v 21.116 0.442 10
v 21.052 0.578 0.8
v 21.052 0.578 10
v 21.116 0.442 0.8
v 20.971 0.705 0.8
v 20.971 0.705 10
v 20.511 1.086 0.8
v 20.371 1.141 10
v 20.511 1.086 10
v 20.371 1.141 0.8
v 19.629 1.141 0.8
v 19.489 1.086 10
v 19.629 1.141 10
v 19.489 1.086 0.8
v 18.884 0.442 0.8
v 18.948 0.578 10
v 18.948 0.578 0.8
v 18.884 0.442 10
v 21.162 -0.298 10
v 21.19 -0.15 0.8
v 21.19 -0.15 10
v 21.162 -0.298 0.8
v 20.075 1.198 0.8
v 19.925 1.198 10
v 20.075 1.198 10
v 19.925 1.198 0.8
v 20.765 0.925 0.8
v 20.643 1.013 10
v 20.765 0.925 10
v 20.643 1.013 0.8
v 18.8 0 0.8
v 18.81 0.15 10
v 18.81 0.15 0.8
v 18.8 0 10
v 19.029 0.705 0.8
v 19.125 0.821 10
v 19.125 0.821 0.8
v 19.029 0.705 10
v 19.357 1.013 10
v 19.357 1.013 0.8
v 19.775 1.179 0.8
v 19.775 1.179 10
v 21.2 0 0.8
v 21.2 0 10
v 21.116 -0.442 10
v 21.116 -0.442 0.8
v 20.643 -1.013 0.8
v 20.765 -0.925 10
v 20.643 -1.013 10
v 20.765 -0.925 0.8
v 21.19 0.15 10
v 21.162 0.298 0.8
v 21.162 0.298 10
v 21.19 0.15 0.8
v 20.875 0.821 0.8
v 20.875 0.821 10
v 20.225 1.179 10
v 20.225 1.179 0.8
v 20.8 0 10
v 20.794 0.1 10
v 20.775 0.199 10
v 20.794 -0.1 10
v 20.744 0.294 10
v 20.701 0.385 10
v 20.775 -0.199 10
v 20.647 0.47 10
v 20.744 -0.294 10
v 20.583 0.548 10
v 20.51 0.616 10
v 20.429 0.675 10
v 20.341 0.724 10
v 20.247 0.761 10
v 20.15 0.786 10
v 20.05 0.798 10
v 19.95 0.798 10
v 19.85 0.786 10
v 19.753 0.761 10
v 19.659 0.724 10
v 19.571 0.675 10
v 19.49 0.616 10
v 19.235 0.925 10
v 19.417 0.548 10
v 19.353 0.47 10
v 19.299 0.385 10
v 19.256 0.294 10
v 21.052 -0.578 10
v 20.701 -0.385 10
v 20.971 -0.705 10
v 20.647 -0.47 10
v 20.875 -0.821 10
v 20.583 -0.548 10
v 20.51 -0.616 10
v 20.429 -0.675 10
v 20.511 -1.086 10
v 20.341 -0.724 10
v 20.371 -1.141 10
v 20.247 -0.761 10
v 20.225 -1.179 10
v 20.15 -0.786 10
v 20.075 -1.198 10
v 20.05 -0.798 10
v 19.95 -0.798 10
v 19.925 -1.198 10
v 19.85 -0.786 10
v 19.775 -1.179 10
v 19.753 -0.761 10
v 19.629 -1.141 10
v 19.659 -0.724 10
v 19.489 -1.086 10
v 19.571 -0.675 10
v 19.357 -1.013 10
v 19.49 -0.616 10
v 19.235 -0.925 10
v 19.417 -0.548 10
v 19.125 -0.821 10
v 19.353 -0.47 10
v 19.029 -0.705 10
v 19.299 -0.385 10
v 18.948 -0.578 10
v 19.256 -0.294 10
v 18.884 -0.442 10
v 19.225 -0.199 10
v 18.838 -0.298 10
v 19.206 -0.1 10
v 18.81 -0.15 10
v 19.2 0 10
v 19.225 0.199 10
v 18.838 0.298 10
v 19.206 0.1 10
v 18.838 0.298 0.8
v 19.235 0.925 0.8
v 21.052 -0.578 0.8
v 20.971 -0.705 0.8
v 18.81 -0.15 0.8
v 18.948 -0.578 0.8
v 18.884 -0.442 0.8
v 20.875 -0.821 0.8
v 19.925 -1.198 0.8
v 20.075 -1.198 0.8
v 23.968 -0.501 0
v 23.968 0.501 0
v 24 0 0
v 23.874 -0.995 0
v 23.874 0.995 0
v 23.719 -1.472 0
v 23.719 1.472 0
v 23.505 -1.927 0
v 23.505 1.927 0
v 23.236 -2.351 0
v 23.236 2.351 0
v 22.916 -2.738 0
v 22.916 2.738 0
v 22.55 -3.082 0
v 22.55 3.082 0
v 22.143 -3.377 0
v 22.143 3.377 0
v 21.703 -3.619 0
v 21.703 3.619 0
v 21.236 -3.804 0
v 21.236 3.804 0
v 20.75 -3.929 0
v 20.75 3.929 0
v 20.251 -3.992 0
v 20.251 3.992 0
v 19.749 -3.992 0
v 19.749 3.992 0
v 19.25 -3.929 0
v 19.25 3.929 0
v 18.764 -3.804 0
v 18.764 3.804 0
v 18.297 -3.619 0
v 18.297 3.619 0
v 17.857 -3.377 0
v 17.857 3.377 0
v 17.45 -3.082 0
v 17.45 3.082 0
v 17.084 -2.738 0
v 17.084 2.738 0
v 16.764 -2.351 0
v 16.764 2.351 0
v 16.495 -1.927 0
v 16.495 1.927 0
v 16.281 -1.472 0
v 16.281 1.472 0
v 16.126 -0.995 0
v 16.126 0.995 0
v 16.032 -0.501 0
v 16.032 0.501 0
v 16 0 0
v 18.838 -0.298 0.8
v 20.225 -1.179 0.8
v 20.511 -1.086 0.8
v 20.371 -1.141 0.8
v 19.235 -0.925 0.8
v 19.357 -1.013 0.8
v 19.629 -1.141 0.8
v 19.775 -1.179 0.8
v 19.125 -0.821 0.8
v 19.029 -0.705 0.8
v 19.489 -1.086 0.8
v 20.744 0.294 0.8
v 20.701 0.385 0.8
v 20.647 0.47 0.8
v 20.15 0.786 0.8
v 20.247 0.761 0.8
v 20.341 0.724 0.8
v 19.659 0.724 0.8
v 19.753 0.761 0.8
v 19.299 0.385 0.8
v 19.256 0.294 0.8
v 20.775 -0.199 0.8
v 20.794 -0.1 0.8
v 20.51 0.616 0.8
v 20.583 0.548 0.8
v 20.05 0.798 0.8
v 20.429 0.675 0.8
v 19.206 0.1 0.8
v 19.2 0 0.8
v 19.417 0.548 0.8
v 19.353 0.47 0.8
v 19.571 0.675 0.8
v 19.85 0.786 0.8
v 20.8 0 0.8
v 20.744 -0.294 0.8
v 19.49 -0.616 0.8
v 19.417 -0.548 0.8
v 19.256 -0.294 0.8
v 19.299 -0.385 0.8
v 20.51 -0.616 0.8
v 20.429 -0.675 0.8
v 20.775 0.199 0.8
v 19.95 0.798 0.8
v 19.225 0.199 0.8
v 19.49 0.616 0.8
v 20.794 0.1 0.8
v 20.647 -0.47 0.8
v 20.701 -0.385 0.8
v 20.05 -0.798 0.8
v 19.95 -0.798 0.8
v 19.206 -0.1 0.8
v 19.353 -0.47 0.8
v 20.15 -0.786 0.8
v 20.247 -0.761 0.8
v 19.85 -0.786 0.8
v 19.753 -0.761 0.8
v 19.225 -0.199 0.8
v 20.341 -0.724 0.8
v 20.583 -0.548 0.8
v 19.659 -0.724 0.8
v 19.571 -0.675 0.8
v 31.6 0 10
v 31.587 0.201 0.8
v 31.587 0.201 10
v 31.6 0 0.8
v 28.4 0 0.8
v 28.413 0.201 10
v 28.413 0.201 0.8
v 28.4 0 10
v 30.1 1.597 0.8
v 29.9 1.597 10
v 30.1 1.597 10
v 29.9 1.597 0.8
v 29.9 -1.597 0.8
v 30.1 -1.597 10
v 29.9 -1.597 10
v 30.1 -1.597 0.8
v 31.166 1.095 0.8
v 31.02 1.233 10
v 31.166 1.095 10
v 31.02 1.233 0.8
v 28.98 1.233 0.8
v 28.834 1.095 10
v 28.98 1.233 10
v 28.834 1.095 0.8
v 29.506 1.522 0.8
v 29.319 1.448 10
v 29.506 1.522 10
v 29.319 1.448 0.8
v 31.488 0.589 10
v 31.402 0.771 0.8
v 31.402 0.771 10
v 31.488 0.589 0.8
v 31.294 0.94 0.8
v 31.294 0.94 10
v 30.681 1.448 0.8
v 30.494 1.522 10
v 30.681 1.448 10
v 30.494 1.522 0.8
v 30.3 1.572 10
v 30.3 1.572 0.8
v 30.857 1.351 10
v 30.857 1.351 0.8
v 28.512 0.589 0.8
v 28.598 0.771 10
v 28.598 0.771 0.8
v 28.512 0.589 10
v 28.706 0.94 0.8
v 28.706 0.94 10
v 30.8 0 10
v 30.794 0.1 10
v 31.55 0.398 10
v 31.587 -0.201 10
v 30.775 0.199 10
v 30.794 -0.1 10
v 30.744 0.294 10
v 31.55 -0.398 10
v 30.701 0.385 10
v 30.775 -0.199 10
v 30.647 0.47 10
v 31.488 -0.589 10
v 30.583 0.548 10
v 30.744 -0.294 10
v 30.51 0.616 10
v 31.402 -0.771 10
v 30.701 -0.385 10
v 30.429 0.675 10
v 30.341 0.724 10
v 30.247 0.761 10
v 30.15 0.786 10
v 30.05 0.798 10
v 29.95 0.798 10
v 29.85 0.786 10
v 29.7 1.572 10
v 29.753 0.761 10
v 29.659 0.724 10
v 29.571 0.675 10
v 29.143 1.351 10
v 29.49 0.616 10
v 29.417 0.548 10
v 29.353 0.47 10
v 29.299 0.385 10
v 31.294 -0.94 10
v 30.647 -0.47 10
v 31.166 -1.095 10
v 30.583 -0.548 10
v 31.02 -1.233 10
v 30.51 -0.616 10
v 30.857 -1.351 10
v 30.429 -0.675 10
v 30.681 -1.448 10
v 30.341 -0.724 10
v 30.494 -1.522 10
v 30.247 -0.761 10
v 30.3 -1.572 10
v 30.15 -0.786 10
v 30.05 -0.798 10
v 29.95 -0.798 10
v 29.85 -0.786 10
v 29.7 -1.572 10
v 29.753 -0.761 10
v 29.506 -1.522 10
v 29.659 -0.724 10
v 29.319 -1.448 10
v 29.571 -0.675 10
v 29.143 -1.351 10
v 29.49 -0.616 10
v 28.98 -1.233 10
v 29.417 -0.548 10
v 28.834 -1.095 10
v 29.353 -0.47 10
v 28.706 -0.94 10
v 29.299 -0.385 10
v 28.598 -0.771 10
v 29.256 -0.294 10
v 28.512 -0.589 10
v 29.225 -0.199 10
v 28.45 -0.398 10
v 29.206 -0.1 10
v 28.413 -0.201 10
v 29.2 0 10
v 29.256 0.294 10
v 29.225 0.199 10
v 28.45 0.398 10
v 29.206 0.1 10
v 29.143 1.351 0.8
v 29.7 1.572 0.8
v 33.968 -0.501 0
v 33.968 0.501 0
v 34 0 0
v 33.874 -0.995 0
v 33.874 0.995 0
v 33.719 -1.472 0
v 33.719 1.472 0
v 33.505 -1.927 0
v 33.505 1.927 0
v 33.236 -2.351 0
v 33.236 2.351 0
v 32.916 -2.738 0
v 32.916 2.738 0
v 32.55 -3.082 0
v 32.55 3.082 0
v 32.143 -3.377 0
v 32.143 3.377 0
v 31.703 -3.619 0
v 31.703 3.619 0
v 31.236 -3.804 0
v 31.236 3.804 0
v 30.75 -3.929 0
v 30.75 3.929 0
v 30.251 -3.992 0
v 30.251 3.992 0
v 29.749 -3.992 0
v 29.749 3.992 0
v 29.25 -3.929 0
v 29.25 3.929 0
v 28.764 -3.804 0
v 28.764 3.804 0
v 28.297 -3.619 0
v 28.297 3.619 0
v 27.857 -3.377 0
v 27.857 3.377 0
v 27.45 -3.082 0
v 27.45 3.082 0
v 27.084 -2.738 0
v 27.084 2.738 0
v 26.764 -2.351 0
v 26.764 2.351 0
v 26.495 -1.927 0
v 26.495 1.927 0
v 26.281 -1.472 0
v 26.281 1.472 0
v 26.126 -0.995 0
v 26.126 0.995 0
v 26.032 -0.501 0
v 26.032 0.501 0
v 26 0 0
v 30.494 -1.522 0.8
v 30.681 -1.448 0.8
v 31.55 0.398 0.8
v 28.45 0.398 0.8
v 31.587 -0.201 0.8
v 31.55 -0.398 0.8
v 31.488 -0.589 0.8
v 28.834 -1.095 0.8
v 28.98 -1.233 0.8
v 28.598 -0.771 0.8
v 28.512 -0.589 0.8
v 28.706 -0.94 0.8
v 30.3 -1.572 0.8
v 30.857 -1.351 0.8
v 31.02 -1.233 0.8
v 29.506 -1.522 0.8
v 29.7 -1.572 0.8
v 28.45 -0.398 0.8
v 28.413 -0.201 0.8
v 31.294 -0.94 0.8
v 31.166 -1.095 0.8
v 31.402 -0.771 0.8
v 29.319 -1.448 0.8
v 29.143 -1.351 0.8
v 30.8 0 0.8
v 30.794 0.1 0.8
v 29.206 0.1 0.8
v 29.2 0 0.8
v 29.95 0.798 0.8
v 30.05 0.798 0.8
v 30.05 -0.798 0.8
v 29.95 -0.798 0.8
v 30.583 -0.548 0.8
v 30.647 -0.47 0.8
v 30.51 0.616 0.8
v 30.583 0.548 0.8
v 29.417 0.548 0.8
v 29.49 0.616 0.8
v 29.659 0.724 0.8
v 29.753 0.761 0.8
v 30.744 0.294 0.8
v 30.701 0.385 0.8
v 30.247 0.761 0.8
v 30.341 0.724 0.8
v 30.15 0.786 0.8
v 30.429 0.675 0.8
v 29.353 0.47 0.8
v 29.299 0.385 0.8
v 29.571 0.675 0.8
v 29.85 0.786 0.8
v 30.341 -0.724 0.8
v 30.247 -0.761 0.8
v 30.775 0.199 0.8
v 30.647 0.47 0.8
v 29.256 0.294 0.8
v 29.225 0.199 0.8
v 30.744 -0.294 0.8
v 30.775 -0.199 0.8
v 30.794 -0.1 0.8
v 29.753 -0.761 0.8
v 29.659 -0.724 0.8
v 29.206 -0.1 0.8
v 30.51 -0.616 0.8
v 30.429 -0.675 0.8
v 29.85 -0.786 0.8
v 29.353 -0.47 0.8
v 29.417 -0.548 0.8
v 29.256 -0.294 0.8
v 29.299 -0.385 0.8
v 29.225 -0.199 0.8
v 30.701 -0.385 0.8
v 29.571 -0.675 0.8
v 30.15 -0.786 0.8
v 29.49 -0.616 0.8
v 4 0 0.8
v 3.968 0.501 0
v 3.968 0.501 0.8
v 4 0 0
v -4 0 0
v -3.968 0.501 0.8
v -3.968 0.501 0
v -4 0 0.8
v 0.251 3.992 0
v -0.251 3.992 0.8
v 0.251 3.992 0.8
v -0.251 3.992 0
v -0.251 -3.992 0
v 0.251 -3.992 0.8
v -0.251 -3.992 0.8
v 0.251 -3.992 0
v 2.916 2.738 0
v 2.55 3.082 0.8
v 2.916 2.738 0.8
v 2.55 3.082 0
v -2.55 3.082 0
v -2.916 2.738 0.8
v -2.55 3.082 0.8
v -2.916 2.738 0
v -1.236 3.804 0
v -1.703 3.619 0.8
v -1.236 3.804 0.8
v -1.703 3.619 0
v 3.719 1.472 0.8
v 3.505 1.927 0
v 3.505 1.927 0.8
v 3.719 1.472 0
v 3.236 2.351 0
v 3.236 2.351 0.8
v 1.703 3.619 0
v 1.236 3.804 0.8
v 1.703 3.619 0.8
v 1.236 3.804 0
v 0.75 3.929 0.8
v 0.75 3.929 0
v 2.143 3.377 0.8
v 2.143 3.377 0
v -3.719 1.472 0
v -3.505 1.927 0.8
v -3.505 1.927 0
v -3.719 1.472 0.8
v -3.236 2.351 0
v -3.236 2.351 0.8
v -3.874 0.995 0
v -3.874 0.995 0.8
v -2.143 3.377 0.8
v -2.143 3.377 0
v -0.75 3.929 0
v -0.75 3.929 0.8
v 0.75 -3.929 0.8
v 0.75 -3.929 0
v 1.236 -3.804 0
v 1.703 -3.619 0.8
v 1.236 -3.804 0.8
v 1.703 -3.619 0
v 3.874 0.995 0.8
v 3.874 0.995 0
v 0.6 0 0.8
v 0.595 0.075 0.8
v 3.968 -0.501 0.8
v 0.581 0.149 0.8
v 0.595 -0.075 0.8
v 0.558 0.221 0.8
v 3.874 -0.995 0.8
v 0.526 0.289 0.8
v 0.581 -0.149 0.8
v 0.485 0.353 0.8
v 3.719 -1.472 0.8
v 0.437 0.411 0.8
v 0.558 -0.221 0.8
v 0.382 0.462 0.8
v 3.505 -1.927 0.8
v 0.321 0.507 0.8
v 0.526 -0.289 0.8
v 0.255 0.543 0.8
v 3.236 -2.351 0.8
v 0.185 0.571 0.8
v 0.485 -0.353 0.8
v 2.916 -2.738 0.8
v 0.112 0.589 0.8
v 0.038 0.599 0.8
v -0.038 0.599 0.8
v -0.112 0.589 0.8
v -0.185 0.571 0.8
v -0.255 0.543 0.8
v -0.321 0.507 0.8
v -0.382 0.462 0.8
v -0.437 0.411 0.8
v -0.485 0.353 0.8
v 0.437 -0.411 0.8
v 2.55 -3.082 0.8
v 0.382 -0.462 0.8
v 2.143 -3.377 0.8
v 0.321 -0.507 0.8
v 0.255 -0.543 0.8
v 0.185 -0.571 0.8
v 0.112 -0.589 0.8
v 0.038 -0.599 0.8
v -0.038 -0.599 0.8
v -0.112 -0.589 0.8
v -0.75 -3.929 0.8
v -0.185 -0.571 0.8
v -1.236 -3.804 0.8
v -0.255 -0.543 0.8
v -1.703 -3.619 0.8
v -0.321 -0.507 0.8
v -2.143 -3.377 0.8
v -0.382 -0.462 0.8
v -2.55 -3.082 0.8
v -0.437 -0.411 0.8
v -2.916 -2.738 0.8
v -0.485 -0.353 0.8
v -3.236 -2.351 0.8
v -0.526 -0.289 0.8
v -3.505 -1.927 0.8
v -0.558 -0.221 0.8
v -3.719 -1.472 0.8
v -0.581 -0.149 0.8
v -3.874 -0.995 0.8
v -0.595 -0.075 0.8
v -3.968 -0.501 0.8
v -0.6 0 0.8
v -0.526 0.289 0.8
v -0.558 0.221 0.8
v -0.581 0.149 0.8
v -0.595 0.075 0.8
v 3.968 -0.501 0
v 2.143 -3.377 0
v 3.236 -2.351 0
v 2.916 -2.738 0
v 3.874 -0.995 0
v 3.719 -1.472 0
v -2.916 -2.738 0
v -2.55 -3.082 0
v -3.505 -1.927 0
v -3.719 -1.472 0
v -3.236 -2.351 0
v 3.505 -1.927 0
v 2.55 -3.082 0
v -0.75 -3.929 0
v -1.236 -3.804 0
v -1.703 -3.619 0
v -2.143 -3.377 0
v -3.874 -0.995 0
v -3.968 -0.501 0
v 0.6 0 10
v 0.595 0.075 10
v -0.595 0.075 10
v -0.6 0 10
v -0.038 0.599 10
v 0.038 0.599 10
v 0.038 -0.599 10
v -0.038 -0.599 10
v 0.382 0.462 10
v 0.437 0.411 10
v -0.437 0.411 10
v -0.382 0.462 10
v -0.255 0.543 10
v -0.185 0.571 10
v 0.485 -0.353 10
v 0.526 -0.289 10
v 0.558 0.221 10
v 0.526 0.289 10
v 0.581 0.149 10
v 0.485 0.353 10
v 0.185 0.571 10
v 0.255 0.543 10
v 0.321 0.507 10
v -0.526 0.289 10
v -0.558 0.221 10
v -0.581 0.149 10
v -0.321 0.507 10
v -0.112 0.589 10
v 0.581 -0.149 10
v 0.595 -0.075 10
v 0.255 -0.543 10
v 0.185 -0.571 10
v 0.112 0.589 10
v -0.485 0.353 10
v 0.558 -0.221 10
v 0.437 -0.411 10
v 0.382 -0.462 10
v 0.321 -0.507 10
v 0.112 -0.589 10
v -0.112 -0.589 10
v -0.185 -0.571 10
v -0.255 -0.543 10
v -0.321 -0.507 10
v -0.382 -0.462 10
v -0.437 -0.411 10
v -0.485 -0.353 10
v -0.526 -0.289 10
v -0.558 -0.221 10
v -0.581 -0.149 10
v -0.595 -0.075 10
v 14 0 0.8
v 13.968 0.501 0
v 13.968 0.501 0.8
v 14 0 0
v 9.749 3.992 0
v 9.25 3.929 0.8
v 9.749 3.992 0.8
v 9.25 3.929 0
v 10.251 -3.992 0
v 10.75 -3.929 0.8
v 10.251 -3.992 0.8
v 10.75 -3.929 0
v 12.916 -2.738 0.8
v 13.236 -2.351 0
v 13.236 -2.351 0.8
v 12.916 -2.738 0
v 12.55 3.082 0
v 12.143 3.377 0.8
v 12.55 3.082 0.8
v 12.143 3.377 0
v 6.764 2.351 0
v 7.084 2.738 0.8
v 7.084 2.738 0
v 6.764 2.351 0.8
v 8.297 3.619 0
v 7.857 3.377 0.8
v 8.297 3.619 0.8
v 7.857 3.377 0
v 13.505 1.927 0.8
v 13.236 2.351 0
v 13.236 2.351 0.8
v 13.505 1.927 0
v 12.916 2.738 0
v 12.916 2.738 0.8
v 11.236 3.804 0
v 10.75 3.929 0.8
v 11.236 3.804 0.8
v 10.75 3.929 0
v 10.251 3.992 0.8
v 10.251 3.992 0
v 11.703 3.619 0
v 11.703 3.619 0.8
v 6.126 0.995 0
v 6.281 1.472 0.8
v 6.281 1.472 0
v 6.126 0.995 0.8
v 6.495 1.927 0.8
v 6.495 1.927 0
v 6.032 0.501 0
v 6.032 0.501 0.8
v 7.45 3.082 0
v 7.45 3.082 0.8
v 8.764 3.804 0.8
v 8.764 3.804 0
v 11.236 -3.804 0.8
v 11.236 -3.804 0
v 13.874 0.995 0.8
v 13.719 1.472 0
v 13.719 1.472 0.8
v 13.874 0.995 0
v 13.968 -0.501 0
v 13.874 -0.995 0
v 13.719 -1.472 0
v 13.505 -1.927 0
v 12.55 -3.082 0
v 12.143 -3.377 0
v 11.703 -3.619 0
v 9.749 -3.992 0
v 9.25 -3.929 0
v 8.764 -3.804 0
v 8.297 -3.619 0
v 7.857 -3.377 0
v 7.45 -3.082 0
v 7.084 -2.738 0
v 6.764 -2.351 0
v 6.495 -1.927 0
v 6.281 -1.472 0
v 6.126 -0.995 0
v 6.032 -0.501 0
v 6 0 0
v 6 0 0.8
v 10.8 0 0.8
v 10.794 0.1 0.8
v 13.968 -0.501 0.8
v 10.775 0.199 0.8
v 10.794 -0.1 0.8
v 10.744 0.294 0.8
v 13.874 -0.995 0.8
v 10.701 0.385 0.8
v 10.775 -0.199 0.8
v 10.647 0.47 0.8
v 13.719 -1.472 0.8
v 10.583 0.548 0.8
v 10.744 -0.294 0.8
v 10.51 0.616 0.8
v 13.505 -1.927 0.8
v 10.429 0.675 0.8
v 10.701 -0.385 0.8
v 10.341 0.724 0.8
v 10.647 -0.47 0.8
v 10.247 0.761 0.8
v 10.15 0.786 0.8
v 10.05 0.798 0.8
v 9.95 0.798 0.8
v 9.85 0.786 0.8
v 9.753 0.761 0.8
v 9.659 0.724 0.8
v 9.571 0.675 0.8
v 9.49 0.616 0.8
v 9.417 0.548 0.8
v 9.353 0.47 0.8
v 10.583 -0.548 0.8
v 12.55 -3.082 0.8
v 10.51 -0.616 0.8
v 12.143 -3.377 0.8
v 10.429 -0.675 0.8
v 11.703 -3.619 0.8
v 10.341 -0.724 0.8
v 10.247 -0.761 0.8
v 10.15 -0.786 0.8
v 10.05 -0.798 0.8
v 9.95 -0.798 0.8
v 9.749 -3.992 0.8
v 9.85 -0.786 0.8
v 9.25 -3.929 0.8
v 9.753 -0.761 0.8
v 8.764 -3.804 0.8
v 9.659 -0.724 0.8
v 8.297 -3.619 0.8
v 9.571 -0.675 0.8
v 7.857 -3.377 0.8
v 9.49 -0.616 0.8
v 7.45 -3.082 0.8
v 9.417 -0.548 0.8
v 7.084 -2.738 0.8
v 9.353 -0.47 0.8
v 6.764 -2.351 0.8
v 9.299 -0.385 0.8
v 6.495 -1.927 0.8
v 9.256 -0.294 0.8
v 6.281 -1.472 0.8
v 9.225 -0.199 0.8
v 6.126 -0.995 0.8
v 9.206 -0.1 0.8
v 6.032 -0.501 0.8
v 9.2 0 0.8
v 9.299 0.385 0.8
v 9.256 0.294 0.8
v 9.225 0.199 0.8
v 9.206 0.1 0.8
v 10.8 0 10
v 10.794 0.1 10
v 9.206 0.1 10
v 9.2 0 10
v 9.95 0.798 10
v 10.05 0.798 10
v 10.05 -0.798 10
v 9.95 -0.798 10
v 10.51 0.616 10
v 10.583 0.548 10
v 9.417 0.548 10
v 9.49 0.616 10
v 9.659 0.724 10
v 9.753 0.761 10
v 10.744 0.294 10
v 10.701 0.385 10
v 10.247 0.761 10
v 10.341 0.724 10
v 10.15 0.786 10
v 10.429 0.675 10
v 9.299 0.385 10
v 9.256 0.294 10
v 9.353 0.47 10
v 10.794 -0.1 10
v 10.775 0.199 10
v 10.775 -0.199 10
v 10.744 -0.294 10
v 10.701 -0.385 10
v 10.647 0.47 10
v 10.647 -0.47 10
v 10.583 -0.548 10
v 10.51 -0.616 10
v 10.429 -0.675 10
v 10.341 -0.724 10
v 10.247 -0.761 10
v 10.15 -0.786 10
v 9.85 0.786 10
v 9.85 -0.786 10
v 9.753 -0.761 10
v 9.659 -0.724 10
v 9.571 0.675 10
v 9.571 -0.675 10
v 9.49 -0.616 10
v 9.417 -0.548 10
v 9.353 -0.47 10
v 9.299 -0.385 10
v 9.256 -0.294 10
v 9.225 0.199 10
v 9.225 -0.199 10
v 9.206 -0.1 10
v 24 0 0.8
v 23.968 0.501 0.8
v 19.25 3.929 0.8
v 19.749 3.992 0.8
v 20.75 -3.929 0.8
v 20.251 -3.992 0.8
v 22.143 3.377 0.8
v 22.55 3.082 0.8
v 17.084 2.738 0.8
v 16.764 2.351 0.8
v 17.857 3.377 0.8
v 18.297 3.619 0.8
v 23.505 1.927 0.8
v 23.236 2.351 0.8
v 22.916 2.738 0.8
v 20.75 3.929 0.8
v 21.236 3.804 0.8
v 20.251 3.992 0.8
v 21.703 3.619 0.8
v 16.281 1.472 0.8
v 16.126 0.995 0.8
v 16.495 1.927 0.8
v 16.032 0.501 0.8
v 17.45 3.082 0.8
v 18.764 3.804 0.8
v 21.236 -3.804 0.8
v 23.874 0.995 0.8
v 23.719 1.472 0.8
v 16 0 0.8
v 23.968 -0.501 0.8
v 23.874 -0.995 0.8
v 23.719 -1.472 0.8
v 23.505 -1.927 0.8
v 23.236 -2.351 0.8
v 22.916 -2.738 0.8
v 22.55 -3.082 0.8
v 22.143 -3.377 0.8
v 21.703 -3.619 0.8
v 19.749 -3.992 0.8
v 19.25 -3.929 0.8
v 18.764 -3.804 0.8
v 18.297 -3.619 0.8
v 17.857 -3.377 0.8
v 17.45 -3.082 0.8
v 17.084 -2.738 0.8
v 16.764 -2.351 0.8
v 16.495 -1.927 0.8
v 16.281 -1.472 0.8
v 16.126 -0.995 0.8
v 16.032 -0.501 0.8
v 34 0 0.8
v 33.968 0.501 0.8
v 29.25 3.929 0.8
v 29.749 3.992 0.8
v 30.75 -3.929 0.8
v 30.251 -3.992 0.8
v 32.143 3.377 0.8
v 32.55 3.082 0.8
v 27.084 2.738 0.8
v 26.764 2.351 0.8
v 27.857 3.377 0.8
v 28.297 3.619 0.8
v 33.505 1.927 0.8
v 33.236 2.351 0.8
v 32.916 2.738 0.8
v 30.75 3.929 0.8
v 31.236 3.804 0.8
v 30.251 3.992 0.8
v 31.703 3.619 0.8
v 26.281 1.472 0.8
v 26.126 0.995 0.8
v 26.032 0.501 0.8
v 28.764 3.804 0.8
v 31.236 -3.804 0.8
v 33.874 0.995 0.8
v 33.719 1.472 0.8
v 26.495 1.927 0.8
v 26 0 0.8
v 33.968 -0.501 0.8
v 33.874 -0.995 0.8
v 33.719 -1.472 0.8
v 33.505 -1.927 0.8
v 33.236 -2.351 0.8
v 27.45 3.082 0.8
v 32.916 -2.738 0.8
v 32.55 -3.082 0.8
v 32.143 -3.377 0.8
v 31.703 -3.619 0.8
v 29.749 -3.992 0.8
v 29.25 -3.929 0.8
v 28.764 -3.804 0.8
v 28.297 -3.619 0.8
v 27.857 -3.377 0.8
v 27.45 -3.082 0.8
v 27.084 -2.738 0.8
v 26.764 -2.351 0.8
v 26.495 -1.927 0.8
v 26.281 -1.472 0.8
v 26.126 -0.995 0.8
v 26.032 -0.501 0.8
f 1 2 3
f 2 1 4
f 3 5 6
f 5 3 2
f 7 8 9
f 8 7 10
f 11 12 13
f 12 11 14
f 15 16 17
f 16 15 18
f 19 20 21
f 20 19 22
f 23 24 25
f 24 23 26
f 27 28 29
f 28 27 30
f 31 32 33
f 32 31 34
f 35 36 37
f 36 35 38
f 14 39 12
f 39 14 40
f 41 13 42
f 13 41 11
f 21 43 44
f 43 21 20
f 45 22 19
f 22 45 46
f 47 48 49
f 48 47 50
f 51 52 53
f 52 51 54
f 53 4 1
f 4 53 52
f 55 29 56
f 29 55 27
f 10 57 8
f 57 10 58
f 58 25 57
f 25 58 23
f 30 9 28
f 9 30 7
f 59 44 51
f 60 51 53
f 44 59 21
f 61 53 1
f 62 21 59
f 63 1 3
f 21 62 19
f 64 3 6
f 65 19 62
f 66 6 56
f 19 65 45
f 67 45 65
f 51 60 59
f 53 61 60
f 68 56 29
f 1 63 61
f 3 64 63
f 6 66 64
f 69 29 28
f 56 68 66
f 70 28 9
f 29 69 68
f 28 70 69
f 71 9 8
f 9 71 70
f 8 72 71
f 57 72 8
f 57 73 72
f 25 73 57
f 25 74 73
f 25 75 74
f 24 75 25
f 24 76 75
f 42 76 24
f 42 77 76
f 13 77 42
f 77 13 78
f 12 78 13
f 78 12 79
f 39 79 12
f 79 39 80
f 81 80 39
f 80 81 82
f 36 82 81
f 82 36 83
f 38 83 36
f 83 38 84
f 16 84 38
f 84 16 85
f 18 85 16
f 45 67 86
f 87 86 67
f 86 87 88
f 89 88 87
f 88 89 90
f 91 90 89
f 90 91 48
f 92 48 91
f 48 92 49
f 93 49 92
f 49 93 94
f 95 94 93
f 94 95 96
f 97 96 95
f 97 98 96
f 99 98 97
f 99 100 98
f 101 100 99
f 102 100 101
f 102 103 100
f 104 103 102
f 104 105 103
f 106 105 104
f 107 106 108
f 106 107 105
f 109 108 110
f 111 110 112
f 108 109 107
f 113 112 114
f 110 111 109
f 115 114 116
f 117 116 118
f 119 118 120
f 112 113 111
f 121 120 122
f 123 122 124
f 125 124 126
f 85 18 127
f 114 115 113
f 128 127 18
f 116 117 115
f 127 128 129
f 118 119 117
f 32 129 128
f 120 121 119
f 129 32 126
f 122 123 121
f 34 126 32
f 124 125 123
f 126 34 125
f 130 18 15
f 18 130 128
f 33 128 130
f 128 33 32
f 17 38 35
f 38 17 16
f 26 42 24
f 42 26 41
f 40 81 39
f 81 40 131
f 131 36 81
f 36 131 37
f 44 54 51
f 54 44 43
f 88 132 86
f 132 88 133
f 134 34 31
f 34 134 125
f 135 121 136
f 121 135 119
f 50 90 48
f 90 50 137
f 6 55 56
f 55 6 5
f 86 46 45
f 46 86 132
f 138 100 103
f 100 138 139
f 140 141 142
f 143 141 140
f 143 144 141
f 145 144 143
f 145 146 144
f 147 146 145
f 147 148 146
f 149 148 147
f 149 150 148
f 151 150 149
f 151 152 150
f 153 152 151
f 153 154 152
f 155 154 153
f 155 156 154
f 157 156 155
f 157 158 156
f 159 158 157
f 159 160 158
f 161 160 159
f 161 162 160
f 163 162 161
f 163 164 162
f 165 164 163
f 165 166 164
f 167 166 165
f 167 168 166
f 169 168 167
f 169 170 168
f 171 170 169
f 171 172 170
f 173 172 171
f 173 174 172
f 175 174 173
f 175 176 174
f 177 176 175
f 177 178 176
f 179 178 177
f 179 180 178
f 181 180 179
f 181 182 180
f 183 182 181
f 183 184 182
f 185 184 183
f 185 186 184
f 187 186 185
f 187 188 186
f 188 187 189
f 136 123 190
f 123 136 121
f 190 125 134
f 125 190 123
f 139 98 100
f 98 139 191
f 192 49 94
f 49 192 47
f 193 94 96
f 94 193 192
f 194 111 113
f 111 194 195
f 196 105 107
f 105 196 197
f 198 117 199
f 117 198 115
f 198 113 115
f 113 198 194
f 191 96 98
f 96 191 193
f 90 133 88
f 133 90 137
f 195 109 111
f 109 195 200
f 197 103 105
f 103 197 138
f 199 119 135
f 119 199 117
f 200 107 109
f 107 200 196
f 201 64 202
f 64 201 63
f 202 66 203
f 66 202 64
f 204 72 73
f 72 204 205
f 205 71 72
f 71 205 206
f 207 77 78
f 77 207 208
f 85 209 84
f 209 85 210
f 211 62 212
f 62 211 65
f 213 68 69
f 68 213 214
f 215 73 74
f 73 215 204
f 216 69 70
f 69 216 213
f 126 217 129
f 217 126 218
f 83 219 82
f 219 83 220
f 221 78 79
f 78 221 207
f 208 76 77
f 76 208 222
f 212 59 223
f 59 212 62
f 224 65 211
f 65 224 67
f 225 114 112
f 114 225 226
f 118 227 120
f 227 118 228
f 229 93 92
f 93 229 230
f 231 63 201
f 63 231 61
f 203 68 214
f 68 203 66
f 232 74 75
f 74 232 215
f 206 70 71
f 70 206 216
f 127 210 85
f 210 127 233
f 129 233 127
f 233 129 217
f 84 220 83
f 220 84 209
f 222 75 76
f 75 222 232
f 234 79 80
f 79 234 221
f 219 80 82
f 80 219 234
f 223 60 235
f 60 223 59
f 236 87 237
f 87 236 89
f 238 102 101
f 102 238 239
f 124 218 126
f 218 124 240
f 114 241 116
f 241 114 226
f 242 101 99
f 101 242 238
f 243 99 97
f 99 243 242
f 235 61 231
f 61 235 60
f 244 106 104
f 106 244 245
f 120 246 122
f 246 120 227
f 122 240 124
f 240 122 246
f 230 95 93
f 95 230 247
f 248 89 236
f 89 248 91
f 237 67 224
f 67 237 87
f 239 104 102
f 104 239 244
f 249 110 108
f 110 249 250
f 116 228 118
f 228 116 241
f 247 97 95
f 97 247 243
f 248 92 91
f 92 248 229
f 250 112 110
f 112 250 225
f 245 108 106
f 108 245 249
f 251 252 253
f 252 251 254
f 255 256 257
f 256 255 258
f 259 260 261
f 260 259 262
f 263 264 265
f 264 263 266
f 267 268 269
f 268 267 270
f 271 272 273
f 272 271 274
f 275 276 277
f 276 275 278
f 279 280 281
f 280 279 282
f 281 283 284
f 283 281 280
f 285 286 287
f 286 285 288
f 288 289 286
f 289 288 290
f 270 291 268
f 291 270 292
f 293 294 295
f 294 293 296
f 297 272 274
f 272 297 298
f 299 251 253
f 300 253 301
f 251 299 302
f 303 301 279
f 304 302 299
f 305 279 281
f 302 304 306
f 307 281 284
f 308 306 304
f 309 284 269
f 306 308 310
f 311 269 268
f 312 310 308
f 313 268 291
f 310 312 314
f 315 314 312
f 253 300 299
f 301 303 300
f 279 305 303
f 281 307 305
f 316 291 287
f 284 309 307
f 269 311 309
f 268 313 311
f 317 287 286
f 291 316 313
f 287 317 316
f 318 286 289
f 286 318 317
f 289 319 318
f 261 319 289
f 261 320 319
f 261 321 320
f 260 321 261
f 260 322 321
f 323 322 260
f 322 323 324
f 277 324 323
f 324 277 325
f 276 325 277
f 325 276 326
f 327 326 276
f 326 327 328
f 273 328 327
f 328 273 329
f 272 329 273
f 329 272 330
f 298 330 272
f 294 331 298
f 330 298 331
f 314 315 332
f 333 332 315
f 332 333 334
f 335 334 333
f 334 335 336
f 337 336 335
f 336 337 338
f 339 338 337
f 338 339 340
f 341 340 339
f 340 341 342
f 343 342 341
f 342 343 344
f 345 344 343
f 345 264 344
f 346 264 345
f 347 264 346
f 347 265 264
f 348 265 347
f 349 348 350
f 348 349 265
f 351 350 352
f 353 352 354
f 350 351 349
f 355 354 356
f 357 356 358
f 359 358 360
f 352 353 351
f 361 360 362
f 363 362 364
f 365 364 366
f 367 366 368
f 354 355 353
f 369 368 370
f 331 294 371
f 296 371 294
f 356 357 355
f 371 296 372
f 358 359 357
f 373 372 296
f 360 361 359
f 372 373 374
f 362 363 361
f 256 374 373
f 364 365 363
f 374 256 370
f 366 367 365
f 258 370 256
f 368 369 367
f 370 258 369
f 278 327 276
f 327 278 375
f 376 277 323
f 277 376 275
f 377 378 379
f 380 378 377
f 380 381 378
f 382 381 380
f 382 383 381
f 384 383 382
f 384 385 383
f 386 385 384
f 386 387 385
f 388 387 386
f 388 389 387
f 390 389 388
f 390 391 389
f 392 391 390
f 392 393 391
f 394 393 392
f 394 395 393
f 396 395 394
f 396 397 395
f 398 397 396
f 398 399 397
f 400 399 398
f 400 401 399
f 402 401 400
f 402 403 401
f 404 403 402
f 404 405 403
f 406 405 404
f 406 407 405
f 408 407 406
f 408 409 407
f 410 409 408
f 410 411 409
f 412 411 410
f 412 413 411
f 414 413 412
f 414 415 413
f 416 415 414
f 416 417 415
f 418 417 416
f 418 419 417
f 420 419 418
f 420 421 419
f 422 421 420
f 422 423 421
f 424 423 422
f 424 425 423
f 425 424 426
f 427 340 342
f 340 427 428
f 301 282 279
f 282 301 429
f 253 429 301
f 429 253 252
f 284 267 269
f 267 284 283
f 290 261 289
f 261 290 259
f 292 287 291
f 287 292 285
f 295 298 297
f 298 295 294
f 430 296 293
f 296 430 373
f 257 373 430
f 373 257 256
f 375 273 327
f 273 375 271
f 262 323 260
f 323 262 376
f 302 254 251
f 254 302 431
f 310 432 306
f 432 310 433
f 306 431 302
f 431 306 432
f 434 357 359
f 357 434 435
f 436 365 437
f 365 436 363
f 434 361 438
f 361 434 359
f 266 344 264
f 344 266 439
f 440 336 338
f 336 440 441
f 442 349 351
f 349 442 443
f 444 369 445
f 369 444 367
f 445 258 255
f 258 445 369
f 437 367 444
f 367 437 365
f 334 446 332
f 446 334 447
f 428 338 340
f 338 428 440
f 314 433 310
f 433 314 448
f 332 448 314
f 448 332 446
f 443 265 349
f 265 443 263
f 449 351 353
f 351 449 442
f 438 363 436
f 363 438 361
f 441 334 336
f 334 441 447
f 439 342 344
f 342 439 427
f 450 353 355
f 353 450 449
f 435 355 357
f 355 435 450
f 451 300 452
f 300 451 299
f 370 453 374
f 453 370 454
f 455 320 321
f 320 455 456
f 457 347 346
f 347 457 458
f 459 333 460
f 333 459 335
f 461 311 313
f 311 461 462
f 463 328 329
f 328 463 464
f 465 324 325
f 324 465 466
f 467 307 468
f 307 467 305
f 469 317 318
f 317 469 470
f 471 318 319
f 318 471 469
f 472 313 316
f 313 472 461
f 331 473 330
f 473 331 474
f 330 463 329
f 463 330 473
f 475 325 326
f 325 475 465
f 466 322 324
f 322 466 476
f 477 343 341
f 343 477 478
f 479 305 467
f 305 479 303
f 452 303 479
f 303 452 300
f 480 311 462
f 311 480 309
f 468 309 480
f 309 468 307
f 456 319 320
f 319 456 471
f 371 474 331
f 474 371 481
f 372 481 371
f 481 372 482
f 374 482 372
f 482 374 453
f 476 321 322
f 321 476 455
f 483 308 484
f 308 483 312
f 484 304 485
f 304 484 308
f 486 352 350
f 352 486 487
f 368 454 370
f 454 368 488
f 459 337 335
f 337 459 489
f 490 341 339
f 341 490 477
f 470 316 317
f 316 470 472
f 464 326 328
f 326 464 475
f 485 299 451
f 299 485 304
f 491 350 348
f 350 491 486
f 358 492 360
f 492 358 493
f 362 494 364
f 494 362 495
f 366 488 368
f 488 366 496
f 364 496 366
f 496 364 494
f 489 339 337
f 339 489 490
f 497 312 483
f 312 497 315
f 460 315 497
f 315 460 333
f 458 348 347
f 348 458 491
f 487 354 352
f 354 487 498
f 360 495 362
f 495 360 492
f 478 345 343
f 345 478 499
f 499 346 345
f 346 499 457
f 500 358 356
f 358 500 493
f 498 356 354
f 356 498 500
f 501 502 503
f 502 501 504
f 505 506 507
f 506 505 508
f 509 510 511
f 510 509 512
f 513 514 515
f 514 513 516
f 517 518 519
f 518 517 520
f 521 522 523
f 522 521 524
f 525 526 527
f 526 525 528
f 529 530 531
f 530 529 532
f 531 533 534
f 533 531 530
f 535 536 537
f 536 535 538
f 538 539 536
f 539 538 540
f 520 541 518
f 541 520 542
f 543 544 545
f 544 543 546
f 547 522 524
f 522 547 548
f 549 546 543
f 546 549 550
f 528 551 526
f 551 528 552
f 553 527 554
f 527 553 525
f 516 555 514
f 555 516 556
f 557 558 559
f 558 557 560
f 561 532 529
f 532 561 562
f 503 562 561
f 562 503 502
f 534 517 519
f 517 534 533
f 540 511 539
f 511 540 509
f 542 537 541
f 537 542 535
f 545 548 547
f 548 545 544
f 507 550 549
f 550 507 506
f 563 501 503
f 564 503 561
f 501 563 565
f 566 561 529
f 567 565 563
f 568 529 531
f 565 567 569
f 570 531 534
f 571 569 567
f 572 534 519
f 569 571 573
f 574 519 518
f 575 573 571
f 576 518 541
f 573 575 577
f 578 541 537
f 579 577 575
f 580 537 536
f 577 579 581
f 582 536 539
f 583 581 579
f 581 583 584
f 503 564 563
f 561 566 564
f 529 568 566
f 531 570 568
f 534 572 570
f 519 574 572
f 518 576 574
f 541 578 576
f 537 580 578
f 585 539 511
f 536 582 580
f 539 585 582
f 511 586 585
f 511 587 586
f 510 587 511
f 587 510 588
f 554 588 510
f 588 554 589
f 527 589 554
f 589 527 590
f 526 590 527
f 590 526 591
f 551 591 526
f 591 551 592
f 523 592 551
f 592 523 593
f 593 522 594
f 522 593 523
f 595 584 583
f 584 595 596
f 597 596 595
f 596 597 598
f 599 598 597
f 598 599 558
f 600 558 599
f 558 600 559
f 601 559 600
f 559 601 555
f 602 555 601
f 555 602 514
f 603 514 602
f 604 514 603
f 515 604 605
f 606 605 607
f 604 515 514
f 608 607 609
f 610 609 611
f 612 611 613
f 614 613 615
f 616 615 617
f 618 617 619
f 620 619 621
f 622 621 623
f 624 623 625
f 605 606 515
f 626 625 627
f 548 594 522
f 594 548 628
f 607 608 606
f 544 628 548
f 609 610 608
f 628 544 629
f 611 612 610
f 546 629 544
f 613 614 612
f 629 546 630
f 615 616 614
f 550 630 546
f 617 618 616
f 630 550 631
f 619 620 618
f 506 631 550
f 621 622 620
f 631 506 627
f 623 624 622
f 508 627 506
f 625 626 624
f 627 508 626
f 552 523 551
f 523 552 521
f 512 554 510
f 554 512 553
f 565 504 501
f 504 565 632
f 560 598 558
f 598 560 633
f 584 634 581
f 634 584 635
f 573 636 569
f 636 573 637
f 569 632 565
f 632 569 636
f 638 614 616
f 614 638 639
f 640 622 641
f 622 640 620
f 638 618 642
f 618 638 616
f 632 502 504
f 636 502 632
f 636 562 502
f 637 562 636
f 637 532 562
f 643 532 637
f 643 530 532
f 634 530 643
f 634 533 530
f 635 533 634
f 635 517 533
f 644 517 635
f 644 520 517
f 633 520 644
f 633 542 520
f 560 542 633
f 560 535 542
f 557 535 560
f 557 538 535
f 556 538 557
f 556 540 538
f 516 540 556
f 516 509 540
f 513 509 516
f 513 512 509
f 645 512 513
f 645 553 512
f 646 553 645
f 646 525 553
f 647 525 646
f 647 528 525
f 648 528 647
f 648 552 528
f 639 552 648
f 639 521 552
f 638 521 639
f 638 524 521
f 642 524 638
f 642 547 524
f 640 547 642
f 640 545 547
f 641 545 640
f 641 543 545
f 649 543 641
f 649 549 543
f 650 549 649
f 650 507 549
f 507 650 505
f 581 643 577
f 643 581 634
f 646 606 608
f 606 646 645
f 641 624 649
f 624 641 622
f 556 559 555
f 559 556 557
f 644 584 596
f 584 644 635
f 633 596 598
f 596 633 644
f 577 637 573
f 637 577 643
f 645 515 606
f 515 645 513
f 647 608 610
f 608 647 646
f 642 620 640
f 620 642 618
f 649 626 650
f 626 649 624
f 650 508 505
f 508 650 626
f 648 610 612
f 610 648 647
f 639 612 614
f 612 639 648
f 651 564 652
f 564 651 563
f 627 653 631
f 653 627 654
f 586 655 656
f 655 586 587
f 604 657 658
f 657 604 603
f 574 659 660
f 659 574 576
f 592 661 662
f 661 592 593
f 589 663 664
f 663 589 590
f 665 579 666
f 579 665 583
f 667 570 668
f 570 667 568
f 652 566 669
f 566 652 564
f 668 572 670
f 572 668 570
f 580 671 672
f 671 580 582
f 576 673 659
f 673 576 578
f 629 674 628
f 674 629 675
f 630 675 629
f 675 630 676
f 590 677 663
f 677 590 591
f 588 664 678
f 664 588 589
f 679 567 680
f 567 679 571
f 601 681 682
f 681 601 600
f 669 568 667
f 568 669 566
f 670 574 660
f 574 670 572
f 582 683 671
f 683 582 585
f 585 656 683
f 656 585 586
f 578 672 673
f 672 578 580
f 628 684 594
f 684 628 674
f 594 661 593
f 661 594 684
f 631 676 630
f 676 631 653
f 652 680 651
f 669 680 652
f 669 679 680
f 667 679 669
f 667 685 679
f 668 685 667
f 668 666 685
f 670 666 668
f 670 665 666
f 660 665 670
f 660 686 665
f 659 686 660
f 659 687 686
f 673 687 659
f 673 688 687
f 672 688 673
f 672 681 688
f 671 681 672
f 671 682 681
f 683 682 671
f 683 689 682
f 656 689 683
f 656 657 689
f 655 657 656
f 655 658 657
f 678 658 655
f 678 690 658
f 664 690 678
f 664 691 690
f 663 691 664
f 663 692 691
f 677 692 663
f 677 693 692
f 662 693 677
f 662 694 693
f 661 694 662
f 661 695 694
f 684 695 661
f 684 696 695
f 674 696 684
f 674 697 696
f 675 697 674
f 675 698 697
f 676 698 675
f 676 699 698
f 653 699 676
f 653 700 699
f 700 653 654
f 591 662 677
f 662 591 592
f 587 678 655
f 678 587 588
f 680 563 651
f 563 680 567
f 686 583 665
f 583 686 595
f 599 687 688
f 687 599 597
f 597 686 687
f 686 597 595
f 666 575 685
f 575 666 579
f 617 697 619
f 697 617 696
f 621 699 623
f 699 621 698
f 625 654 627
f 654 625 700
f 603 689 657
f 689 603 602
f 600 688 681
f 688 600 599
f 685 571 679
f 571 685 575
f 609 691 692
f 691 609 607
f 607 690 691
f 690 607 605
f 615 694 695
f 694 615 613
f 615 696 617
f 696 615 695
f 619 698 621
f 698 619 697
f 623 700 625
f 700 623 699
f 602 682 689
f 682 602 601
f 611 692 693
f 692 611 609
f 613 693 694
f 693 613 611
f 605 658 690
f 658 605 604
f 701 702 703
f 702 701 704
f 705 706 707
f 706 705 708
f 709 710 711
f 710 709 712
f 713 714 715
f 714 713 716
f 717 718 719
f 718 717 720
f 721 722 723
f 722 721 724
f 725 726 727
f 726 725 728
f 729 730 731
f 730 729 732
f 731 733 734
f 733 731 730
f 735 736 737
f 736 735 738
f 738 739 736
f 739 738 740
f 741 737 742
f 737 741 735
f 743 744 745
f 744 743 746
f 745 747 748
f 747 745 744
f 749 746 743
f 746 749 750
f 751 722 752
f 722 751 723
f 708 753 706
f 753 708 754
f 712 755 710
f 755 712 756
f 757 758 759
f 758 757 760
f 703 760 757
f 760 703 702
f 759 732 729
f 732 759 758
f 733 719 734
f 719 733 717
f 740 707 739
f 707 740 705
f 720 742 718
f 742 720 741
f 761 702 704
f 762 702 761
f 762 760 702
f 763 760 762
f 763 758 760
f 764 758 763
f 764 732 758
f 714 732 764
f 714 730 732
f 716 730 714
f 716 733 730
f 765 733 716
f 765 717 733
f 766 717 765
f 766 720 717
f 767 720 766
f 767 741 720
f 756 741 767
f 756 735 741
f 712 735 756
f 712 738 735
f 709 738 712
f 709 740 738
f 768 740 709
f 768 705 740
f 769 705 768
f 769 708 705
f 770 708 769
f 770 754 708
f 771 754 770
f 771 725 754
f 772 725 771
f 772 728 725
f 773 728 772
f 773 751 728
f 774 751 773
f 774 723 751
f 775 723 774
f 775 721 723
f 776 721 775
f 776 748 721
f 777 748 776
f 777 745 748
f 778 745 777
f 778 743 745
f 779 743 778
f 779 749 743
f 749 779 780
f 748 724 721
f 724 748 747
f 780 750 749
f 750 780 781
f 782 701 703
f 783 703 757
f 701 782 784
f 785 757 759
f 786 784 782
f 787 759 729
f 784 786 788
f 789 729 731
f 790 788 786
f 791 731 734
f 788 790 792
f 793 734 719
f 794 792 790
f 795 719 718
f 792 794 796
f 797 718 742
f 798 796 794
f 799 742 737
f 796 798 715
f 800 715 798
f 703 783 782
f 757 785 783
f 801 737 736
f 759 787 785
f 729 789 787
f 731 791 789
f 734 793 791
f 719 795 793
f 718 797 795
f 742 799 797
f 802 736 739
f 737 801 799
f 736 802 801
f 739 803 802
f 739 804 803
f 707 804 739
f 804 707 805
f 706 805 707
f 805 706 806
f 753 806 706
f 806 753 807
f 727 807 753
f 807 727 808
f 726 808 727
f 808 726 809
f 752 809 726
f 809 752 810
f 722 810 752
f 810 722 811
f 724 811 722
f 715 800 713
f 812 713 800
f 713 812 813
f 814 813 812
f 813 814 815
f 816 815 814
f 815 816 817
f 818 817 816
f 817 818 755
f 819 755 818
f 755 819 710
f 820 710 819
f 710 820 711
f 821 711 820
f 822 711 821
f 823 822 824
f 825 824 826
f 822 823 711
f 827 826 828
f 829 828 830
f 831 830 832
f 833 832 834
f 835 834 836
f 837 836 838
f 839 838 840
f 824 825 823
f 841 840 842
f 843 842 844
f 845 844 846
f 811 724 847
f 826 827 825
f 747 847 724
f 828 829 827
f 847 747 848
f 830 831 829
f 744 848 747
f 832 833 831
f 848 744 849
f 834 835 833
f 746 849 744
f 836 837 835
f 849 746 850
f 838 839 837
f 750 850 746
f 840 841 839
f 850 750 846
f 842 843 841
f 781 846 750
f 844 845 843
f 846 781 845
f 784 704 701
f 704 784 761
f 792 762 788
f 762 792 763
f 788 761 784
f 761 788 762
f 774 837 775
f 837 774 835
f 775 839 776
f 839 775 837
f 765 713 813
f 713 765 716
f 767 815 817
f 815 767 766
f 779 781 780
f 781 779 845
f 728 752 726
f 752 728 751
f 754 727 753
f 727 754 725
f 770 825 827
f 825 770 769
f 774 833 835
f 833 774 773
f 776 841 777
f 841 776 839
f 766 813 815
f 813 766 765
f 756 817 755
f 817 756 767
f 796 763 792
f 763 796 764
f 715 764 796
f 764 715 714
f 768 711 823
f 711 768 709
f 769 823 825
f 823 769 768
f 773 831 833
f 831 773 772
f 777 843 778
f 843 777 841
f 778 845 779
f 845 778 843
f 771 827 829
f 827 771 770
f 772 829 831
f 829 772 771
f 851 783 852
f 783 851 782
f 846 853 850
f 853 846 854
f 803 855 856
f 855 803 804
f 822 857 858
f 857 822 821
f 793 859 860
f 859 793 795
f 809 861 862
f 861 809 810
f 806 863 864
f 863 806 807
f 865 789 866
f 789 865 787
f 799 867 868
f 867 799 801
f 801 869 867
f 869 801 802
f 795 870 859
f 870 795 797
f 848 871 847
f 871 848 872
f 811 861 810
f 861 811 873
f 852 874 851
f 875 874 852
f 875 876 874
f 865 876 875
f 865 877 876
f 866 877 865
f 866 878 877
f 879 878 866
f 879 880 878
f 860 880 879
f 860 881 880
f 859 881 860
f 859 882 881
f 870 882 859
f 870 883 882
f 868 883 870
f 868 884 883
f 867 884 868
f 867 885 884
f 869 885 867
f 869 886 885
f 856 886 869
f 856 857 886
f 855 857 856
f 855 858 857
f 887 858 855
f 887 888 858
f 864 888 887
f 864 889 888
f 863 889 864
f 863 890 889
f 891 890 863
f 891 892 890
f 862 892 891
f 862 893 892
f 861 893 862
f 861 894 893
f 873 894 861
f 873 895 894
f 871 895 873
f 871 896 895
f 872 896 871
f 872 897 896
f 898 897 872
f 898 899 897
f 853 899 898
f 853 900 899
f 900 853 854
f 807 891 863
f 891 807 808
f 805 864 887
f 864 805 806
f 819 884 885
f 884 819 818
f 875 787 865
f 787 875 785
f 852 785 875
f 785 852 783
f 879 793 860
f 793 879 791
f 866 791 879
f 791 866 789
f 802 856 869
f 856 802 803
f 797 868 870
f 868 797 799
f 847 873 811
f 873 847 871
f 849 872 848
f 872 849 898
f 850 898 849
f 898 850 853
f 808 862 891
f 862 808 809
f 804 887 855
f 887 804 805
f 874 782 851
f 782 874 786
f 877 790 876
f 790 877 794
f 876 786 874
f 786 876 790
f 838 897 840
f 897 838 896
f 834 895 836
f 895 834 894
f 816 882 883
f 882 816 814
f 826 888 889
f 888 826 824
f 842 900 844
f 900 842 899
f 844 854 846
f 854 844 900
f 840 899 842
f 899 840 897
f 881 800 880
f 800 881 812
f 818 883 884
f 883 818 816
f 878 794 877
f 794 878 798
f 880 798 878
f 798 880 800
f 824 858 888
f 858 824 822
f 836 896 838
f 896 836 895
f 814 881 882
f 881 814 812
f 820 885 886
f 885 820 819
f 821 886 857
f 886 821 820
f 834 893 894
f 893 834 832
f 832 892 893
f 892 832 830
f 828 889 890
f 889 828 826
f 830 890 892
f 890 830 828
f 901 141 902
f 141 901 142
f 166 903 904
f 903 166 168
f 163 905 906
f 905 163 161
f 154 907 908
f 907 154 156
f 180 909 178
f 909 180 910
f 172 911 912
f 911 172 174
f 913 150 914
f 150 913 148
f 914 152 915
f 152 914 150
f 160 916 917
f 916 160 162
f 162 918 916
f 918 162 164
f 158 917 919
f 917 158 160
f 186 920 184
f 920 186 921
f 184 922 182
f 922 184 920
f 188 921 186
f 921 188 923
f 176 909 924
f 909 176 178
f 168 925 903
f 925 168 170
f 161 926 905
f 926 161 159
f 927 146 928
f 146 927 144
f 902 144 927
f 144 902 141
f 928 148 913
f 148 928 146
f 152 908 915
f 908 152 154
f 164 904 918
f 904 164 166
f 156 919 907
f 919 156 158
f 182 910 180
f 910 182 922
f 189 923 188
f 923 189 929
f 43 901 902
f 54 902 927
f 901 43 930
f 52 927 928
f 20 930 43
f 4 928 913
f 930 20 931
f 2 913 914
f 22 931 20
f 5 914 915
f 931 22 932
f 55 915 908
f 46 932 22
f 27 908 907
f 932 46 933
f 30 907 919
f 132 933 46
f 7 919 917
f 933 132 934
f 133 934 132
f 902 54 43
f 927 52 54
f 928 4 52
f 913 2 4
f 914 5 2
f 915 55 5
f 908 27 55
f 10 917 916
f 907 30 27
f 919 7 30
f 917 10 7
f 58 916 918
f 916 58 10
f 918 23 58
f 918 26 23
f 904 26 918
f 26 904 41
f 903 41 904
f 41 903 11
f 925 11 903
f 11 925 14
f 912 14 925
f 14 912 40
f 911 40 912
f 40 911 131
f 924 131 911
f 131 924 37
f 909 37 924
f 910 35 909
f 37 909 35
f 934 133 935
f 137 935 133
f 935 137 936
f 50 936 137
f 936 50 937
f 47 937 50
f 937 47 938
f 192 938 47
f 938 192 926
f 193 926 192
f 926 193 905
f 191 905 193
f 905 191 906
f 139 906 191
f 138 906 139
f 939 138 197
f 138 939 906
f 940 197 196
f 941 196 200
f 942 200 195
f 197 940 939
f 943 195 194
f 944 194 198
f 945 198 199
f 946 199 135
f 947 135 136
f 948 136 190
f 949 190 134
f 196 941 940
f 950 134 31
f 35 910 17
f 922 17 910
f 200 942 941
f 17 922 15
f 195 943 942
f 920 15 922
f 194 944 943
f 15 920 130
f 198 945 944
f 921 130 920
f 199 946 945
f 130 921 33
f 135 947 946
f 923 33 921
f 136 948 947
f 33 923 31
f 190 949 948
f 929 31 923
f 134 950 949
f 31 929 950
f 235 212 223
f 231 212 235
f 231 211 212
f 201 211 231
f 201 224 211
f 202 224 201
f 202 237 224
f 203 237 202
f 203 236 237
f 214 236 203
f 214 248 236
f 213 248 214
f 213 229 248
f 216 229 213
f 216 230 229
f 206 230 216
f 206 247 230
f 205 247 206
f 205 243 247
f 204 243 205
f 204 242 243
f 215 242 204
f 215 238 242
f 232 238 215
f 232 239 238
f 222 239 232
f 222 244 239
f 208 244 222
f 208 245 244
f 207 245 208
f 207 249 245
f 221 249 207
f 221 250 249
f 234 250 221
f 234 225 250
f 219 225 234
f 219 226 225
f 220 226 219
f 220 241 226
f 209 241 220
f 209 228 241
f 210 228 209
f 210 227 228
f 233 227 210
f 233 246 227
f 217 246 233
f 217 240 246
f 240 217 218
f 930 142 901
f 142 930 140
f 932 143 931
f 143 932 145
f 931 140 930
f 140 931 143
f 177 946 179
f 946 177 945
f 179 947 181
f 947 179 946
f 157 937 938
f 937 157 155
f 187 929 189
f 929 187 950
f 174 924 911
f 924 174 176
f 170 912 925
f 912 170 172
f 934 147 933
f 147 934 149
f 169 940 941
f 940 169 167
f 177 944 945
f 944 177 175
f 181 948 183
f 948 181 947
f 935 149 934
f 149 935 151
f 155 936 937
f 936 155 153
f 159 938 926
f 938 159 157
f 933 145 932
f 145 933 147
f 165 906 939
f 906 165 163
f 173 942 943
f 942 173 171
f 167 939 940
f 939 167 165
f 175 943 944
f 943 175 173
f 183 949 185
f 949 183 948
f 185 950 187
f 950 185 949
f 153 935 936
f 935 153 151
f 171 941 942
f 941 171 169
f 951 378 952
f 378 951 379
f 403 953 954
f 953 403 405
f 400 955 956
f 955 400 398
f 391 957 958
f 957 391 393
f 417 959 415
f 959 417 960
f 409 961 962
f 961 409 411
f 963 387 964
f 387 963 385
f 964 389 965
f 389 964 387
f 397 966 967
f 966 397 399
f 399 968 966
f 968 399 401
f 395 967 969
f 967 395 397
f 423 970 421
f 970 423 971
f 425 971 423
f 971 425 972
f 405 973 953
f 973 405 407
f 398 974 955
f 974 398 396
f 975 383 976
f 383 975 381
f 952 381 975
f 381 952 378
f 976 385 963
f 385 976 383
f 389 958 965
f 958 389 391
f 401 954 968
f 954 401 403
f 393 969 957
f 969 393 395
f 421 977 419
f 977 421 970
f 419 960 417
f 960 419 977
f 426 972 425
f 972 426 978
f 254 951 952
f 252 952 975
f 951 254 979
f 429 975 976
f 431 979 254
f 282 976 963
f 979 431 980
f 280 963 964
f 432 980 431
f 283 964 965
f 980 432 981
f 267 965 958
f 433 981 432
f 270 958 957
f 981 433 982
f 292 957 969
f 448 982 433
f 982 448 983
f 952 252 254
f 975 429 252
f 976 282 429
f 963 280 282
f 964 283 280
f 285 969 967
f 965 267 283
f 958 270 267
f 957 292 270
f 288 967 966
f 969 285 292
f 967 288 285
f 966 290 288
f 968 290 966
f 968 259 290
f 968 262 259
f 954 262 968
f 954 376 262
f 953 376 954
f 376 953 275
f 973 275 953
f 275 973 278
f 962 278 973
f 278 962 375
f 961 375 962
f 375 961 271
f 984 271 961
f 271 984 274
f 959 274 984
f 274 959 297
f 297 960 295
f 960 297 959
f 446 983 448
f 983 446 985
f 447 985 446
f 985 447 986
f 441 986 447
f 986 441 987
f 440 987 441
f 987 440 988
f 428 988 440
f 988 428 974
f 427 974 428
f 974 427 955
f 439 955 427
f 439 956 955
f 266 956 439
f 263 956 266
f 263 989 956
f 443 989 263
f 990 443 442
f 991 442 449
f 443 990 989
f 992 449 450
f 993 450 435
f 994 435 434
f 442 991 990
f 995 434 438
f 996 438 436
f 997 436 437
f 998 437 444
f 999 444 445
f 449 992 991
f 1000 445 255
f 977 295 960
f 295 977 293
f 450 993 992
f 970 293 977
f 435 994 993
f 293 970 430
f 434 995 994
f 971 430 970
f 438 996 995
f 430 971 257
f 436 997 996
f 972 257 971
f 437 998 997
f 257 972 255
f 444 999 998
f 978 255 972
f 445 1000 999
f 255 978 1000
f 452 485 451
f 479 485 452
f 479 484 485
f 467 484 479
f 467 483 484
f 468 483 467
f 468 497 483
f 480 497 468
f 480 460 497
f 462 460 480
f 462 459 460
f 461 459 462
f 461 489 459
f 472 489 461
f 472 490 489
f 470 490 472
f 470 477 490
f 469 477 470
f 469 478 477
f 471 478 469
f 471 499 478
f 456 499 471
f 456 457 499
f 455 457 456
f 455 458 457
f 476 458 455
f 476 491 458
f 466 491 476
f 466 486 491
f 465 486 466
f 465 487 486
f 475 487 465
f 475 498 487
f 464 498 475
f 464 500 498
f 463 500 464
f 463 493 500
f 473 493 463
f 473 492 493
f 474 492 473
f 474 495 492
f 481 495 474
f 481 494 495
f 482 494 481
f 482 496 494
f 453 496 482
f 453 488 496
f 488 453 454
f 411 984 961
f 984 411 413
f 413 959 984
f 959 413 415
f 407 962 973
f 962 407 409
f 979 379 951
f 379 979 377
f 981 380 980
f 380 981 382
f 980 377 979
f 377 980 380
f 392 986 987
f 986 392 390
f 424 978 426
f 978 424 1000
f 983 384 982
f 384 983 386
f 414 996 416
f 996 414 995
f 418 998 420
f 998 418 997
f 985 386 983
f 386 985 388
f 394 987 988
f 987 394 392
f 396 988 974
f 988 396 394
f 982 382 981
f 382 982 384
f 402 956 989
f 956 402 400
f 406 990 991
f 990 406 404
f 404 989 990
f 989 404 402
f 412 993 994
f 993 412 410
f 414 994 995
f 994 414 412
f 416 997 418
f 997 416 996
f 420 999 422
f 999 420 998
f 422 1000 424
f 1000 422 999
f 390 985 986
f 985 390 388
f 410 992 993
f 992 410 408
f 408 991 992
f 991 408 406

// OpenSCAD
translate([0.,0.,0])
	cylinder(0.8,4,4, $fn=50);
translate([0.,0.,0])
	cylinder(10,0.6,0.6, $fn=50);

translate([10,0.,0])
	cylinder(0.8,4,4, $fn=50);
translate([10,0.,0])
	cylinder(10,0.8,0.8, $fn=50);


translate([20,0.,0])
	cylinder(0.8,4,4, $fn=50);
translate([20,0.,0])
difference(){
		cylinder(10,1.2,1.2, $fn=50);
		cylinder(12,0.8,0.8, $fn=50);
}

translate([30,0.,0])
	cylinder(0.8,4,4, $fn=50);
translate([30,0.,0])
difference(){
		cylinder(10,1.6,1.6, $fn=50);
		cylinder(12,0.8,0.8, $fn=50);
}
